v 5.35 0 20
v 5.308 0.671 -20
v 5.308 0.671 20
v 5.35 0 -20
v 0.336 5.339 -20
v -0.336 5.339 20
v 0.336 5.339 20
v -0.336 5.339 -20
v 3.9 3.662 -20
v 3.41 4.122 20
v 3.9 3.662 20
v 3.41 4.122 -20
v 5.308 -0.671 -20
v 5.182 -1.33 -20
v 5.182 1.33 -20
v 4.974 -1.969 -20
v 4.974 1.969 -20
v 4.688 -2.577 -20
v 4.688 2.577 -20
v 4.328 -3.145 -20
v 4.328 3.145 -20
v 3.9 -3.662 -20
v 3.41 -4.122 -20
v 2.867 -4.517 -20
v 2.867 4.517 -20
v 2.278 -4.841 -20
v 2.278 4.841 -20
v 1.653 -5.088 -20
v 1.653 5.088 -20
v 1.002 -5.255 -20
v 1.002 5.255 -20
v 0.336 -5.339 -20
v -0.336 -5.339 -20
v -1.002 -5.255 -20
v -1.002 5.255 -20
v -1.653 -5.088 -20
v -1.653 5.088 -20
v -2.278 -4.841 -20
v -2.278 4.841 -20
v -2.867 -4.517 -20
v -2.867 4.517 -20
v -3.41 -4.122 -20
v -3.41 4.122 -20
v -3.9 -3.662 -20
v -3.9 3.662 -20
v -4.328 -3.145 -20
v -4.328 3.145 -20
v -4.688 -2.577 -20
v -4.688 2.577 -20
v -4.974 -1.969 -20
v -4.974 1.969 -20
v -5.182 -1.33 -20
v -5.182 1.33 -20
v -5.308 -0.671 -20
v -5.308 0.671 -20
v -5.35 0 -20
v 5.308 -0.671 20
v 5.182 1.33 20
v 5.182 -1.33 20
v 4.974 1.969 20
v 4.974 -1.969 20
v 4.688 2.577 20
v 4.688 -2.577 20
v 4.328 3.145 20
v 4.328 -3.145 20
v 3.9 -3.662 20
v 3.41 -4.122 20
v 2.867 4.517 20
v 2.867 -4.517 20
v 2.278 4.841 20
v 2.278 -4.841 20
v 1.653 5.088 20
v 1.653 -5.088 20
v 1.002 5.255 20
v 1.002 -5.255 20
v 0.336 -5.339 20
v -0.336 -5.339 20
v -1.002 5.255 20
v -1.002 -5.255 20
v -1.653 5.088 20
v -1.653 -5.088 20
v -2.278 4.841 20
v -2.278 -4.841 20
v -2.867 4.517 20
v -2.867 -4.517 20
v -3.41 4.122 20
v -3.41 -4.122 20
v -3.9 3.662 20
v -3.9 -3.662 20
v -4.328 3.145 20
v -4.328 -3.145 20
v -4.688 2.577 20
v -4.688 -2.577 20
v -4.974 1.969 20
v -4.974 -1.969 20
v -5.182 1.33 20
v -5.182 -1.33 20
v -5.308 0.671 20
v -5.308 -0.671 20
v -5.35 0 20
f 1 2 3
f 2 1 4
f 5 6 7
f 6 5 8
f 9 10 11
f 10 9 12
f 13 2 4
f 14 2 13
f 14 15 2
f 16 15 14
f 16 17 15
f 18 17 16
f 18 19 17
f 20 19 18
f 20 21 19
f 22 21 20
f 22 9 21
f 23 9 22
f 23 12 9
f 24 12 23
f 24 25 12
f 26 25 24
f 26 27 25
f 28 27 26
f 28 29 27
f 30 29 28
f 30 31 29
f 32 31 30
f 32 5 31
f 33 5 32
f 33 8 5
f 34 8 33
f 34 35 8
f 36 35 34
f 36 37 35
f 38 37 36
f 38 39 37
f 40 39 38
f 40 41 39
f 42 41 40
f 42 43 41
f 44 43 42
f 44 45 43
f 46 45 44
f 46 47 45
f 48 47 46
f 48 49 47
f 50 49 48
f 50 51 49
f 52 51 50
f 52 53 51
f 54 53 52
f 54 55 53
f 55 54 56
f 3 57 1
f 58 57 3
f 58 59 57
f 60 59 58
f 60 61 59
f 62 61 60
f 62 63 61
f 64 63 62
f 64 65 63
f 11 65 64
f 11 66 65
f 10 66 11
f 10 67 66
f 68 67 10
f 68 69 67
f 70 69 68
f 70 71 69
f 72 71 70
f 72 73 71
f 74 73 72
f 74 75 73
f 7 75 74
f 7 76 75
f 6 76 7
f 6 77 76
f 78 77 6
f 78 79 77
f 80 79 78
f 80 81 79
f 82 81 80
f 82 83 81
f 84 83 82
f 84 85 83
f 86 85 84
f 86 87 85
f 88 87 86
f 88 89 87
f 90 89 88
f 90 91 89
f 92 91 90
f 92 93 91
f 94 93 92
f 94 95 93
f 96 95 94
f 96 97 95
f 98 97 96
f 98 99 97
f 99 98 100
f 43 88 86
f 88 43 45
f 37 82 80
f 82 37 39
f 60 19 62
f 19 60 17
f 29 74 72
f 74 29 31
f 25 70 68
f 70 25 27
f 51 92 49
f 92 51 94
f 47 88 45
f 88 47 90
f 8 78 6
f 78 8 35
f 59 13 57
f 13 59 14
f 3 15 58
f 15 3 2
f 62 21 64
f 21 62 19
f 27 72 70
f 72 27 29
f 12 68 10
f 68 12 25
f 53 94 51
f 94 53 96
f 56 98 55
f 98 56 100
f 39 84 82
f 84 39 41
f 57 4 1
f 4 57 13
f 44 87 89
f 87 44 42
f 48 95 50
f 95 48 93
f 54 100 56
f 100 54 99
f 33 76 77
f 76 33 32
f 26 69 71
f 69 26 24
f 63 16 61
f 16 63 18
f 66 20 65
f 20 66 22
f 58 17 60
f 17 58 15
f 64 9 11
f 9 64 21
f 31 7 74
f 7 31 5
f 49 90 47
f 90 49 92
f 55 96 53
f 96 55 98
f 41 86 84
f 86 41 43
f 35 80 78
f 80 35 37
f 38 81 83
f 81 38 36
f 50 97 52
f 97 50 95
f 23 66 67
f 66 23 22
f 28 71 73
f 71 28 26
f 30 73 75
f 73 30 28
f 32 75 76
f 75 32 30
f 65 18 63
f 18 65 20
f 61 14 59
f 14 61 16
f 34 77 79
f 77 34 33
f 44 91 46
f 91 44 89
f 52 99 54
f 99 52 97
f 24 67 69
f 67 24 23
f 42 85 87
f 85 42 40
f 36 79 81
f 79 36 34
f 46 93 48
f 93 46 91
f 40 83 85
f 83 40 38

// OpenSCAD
$fn = 50;


difference() {
	union() {
		translate(v = [0, 0, -20.0000000000]) {
			cylinder(h = 40, r = 5.3500000000);
		}
	}
	union() {
		translate(v = [0, 0, -100.0000000000]) {
			cylinder(h = 200, r = 0);
		}
	}
}
